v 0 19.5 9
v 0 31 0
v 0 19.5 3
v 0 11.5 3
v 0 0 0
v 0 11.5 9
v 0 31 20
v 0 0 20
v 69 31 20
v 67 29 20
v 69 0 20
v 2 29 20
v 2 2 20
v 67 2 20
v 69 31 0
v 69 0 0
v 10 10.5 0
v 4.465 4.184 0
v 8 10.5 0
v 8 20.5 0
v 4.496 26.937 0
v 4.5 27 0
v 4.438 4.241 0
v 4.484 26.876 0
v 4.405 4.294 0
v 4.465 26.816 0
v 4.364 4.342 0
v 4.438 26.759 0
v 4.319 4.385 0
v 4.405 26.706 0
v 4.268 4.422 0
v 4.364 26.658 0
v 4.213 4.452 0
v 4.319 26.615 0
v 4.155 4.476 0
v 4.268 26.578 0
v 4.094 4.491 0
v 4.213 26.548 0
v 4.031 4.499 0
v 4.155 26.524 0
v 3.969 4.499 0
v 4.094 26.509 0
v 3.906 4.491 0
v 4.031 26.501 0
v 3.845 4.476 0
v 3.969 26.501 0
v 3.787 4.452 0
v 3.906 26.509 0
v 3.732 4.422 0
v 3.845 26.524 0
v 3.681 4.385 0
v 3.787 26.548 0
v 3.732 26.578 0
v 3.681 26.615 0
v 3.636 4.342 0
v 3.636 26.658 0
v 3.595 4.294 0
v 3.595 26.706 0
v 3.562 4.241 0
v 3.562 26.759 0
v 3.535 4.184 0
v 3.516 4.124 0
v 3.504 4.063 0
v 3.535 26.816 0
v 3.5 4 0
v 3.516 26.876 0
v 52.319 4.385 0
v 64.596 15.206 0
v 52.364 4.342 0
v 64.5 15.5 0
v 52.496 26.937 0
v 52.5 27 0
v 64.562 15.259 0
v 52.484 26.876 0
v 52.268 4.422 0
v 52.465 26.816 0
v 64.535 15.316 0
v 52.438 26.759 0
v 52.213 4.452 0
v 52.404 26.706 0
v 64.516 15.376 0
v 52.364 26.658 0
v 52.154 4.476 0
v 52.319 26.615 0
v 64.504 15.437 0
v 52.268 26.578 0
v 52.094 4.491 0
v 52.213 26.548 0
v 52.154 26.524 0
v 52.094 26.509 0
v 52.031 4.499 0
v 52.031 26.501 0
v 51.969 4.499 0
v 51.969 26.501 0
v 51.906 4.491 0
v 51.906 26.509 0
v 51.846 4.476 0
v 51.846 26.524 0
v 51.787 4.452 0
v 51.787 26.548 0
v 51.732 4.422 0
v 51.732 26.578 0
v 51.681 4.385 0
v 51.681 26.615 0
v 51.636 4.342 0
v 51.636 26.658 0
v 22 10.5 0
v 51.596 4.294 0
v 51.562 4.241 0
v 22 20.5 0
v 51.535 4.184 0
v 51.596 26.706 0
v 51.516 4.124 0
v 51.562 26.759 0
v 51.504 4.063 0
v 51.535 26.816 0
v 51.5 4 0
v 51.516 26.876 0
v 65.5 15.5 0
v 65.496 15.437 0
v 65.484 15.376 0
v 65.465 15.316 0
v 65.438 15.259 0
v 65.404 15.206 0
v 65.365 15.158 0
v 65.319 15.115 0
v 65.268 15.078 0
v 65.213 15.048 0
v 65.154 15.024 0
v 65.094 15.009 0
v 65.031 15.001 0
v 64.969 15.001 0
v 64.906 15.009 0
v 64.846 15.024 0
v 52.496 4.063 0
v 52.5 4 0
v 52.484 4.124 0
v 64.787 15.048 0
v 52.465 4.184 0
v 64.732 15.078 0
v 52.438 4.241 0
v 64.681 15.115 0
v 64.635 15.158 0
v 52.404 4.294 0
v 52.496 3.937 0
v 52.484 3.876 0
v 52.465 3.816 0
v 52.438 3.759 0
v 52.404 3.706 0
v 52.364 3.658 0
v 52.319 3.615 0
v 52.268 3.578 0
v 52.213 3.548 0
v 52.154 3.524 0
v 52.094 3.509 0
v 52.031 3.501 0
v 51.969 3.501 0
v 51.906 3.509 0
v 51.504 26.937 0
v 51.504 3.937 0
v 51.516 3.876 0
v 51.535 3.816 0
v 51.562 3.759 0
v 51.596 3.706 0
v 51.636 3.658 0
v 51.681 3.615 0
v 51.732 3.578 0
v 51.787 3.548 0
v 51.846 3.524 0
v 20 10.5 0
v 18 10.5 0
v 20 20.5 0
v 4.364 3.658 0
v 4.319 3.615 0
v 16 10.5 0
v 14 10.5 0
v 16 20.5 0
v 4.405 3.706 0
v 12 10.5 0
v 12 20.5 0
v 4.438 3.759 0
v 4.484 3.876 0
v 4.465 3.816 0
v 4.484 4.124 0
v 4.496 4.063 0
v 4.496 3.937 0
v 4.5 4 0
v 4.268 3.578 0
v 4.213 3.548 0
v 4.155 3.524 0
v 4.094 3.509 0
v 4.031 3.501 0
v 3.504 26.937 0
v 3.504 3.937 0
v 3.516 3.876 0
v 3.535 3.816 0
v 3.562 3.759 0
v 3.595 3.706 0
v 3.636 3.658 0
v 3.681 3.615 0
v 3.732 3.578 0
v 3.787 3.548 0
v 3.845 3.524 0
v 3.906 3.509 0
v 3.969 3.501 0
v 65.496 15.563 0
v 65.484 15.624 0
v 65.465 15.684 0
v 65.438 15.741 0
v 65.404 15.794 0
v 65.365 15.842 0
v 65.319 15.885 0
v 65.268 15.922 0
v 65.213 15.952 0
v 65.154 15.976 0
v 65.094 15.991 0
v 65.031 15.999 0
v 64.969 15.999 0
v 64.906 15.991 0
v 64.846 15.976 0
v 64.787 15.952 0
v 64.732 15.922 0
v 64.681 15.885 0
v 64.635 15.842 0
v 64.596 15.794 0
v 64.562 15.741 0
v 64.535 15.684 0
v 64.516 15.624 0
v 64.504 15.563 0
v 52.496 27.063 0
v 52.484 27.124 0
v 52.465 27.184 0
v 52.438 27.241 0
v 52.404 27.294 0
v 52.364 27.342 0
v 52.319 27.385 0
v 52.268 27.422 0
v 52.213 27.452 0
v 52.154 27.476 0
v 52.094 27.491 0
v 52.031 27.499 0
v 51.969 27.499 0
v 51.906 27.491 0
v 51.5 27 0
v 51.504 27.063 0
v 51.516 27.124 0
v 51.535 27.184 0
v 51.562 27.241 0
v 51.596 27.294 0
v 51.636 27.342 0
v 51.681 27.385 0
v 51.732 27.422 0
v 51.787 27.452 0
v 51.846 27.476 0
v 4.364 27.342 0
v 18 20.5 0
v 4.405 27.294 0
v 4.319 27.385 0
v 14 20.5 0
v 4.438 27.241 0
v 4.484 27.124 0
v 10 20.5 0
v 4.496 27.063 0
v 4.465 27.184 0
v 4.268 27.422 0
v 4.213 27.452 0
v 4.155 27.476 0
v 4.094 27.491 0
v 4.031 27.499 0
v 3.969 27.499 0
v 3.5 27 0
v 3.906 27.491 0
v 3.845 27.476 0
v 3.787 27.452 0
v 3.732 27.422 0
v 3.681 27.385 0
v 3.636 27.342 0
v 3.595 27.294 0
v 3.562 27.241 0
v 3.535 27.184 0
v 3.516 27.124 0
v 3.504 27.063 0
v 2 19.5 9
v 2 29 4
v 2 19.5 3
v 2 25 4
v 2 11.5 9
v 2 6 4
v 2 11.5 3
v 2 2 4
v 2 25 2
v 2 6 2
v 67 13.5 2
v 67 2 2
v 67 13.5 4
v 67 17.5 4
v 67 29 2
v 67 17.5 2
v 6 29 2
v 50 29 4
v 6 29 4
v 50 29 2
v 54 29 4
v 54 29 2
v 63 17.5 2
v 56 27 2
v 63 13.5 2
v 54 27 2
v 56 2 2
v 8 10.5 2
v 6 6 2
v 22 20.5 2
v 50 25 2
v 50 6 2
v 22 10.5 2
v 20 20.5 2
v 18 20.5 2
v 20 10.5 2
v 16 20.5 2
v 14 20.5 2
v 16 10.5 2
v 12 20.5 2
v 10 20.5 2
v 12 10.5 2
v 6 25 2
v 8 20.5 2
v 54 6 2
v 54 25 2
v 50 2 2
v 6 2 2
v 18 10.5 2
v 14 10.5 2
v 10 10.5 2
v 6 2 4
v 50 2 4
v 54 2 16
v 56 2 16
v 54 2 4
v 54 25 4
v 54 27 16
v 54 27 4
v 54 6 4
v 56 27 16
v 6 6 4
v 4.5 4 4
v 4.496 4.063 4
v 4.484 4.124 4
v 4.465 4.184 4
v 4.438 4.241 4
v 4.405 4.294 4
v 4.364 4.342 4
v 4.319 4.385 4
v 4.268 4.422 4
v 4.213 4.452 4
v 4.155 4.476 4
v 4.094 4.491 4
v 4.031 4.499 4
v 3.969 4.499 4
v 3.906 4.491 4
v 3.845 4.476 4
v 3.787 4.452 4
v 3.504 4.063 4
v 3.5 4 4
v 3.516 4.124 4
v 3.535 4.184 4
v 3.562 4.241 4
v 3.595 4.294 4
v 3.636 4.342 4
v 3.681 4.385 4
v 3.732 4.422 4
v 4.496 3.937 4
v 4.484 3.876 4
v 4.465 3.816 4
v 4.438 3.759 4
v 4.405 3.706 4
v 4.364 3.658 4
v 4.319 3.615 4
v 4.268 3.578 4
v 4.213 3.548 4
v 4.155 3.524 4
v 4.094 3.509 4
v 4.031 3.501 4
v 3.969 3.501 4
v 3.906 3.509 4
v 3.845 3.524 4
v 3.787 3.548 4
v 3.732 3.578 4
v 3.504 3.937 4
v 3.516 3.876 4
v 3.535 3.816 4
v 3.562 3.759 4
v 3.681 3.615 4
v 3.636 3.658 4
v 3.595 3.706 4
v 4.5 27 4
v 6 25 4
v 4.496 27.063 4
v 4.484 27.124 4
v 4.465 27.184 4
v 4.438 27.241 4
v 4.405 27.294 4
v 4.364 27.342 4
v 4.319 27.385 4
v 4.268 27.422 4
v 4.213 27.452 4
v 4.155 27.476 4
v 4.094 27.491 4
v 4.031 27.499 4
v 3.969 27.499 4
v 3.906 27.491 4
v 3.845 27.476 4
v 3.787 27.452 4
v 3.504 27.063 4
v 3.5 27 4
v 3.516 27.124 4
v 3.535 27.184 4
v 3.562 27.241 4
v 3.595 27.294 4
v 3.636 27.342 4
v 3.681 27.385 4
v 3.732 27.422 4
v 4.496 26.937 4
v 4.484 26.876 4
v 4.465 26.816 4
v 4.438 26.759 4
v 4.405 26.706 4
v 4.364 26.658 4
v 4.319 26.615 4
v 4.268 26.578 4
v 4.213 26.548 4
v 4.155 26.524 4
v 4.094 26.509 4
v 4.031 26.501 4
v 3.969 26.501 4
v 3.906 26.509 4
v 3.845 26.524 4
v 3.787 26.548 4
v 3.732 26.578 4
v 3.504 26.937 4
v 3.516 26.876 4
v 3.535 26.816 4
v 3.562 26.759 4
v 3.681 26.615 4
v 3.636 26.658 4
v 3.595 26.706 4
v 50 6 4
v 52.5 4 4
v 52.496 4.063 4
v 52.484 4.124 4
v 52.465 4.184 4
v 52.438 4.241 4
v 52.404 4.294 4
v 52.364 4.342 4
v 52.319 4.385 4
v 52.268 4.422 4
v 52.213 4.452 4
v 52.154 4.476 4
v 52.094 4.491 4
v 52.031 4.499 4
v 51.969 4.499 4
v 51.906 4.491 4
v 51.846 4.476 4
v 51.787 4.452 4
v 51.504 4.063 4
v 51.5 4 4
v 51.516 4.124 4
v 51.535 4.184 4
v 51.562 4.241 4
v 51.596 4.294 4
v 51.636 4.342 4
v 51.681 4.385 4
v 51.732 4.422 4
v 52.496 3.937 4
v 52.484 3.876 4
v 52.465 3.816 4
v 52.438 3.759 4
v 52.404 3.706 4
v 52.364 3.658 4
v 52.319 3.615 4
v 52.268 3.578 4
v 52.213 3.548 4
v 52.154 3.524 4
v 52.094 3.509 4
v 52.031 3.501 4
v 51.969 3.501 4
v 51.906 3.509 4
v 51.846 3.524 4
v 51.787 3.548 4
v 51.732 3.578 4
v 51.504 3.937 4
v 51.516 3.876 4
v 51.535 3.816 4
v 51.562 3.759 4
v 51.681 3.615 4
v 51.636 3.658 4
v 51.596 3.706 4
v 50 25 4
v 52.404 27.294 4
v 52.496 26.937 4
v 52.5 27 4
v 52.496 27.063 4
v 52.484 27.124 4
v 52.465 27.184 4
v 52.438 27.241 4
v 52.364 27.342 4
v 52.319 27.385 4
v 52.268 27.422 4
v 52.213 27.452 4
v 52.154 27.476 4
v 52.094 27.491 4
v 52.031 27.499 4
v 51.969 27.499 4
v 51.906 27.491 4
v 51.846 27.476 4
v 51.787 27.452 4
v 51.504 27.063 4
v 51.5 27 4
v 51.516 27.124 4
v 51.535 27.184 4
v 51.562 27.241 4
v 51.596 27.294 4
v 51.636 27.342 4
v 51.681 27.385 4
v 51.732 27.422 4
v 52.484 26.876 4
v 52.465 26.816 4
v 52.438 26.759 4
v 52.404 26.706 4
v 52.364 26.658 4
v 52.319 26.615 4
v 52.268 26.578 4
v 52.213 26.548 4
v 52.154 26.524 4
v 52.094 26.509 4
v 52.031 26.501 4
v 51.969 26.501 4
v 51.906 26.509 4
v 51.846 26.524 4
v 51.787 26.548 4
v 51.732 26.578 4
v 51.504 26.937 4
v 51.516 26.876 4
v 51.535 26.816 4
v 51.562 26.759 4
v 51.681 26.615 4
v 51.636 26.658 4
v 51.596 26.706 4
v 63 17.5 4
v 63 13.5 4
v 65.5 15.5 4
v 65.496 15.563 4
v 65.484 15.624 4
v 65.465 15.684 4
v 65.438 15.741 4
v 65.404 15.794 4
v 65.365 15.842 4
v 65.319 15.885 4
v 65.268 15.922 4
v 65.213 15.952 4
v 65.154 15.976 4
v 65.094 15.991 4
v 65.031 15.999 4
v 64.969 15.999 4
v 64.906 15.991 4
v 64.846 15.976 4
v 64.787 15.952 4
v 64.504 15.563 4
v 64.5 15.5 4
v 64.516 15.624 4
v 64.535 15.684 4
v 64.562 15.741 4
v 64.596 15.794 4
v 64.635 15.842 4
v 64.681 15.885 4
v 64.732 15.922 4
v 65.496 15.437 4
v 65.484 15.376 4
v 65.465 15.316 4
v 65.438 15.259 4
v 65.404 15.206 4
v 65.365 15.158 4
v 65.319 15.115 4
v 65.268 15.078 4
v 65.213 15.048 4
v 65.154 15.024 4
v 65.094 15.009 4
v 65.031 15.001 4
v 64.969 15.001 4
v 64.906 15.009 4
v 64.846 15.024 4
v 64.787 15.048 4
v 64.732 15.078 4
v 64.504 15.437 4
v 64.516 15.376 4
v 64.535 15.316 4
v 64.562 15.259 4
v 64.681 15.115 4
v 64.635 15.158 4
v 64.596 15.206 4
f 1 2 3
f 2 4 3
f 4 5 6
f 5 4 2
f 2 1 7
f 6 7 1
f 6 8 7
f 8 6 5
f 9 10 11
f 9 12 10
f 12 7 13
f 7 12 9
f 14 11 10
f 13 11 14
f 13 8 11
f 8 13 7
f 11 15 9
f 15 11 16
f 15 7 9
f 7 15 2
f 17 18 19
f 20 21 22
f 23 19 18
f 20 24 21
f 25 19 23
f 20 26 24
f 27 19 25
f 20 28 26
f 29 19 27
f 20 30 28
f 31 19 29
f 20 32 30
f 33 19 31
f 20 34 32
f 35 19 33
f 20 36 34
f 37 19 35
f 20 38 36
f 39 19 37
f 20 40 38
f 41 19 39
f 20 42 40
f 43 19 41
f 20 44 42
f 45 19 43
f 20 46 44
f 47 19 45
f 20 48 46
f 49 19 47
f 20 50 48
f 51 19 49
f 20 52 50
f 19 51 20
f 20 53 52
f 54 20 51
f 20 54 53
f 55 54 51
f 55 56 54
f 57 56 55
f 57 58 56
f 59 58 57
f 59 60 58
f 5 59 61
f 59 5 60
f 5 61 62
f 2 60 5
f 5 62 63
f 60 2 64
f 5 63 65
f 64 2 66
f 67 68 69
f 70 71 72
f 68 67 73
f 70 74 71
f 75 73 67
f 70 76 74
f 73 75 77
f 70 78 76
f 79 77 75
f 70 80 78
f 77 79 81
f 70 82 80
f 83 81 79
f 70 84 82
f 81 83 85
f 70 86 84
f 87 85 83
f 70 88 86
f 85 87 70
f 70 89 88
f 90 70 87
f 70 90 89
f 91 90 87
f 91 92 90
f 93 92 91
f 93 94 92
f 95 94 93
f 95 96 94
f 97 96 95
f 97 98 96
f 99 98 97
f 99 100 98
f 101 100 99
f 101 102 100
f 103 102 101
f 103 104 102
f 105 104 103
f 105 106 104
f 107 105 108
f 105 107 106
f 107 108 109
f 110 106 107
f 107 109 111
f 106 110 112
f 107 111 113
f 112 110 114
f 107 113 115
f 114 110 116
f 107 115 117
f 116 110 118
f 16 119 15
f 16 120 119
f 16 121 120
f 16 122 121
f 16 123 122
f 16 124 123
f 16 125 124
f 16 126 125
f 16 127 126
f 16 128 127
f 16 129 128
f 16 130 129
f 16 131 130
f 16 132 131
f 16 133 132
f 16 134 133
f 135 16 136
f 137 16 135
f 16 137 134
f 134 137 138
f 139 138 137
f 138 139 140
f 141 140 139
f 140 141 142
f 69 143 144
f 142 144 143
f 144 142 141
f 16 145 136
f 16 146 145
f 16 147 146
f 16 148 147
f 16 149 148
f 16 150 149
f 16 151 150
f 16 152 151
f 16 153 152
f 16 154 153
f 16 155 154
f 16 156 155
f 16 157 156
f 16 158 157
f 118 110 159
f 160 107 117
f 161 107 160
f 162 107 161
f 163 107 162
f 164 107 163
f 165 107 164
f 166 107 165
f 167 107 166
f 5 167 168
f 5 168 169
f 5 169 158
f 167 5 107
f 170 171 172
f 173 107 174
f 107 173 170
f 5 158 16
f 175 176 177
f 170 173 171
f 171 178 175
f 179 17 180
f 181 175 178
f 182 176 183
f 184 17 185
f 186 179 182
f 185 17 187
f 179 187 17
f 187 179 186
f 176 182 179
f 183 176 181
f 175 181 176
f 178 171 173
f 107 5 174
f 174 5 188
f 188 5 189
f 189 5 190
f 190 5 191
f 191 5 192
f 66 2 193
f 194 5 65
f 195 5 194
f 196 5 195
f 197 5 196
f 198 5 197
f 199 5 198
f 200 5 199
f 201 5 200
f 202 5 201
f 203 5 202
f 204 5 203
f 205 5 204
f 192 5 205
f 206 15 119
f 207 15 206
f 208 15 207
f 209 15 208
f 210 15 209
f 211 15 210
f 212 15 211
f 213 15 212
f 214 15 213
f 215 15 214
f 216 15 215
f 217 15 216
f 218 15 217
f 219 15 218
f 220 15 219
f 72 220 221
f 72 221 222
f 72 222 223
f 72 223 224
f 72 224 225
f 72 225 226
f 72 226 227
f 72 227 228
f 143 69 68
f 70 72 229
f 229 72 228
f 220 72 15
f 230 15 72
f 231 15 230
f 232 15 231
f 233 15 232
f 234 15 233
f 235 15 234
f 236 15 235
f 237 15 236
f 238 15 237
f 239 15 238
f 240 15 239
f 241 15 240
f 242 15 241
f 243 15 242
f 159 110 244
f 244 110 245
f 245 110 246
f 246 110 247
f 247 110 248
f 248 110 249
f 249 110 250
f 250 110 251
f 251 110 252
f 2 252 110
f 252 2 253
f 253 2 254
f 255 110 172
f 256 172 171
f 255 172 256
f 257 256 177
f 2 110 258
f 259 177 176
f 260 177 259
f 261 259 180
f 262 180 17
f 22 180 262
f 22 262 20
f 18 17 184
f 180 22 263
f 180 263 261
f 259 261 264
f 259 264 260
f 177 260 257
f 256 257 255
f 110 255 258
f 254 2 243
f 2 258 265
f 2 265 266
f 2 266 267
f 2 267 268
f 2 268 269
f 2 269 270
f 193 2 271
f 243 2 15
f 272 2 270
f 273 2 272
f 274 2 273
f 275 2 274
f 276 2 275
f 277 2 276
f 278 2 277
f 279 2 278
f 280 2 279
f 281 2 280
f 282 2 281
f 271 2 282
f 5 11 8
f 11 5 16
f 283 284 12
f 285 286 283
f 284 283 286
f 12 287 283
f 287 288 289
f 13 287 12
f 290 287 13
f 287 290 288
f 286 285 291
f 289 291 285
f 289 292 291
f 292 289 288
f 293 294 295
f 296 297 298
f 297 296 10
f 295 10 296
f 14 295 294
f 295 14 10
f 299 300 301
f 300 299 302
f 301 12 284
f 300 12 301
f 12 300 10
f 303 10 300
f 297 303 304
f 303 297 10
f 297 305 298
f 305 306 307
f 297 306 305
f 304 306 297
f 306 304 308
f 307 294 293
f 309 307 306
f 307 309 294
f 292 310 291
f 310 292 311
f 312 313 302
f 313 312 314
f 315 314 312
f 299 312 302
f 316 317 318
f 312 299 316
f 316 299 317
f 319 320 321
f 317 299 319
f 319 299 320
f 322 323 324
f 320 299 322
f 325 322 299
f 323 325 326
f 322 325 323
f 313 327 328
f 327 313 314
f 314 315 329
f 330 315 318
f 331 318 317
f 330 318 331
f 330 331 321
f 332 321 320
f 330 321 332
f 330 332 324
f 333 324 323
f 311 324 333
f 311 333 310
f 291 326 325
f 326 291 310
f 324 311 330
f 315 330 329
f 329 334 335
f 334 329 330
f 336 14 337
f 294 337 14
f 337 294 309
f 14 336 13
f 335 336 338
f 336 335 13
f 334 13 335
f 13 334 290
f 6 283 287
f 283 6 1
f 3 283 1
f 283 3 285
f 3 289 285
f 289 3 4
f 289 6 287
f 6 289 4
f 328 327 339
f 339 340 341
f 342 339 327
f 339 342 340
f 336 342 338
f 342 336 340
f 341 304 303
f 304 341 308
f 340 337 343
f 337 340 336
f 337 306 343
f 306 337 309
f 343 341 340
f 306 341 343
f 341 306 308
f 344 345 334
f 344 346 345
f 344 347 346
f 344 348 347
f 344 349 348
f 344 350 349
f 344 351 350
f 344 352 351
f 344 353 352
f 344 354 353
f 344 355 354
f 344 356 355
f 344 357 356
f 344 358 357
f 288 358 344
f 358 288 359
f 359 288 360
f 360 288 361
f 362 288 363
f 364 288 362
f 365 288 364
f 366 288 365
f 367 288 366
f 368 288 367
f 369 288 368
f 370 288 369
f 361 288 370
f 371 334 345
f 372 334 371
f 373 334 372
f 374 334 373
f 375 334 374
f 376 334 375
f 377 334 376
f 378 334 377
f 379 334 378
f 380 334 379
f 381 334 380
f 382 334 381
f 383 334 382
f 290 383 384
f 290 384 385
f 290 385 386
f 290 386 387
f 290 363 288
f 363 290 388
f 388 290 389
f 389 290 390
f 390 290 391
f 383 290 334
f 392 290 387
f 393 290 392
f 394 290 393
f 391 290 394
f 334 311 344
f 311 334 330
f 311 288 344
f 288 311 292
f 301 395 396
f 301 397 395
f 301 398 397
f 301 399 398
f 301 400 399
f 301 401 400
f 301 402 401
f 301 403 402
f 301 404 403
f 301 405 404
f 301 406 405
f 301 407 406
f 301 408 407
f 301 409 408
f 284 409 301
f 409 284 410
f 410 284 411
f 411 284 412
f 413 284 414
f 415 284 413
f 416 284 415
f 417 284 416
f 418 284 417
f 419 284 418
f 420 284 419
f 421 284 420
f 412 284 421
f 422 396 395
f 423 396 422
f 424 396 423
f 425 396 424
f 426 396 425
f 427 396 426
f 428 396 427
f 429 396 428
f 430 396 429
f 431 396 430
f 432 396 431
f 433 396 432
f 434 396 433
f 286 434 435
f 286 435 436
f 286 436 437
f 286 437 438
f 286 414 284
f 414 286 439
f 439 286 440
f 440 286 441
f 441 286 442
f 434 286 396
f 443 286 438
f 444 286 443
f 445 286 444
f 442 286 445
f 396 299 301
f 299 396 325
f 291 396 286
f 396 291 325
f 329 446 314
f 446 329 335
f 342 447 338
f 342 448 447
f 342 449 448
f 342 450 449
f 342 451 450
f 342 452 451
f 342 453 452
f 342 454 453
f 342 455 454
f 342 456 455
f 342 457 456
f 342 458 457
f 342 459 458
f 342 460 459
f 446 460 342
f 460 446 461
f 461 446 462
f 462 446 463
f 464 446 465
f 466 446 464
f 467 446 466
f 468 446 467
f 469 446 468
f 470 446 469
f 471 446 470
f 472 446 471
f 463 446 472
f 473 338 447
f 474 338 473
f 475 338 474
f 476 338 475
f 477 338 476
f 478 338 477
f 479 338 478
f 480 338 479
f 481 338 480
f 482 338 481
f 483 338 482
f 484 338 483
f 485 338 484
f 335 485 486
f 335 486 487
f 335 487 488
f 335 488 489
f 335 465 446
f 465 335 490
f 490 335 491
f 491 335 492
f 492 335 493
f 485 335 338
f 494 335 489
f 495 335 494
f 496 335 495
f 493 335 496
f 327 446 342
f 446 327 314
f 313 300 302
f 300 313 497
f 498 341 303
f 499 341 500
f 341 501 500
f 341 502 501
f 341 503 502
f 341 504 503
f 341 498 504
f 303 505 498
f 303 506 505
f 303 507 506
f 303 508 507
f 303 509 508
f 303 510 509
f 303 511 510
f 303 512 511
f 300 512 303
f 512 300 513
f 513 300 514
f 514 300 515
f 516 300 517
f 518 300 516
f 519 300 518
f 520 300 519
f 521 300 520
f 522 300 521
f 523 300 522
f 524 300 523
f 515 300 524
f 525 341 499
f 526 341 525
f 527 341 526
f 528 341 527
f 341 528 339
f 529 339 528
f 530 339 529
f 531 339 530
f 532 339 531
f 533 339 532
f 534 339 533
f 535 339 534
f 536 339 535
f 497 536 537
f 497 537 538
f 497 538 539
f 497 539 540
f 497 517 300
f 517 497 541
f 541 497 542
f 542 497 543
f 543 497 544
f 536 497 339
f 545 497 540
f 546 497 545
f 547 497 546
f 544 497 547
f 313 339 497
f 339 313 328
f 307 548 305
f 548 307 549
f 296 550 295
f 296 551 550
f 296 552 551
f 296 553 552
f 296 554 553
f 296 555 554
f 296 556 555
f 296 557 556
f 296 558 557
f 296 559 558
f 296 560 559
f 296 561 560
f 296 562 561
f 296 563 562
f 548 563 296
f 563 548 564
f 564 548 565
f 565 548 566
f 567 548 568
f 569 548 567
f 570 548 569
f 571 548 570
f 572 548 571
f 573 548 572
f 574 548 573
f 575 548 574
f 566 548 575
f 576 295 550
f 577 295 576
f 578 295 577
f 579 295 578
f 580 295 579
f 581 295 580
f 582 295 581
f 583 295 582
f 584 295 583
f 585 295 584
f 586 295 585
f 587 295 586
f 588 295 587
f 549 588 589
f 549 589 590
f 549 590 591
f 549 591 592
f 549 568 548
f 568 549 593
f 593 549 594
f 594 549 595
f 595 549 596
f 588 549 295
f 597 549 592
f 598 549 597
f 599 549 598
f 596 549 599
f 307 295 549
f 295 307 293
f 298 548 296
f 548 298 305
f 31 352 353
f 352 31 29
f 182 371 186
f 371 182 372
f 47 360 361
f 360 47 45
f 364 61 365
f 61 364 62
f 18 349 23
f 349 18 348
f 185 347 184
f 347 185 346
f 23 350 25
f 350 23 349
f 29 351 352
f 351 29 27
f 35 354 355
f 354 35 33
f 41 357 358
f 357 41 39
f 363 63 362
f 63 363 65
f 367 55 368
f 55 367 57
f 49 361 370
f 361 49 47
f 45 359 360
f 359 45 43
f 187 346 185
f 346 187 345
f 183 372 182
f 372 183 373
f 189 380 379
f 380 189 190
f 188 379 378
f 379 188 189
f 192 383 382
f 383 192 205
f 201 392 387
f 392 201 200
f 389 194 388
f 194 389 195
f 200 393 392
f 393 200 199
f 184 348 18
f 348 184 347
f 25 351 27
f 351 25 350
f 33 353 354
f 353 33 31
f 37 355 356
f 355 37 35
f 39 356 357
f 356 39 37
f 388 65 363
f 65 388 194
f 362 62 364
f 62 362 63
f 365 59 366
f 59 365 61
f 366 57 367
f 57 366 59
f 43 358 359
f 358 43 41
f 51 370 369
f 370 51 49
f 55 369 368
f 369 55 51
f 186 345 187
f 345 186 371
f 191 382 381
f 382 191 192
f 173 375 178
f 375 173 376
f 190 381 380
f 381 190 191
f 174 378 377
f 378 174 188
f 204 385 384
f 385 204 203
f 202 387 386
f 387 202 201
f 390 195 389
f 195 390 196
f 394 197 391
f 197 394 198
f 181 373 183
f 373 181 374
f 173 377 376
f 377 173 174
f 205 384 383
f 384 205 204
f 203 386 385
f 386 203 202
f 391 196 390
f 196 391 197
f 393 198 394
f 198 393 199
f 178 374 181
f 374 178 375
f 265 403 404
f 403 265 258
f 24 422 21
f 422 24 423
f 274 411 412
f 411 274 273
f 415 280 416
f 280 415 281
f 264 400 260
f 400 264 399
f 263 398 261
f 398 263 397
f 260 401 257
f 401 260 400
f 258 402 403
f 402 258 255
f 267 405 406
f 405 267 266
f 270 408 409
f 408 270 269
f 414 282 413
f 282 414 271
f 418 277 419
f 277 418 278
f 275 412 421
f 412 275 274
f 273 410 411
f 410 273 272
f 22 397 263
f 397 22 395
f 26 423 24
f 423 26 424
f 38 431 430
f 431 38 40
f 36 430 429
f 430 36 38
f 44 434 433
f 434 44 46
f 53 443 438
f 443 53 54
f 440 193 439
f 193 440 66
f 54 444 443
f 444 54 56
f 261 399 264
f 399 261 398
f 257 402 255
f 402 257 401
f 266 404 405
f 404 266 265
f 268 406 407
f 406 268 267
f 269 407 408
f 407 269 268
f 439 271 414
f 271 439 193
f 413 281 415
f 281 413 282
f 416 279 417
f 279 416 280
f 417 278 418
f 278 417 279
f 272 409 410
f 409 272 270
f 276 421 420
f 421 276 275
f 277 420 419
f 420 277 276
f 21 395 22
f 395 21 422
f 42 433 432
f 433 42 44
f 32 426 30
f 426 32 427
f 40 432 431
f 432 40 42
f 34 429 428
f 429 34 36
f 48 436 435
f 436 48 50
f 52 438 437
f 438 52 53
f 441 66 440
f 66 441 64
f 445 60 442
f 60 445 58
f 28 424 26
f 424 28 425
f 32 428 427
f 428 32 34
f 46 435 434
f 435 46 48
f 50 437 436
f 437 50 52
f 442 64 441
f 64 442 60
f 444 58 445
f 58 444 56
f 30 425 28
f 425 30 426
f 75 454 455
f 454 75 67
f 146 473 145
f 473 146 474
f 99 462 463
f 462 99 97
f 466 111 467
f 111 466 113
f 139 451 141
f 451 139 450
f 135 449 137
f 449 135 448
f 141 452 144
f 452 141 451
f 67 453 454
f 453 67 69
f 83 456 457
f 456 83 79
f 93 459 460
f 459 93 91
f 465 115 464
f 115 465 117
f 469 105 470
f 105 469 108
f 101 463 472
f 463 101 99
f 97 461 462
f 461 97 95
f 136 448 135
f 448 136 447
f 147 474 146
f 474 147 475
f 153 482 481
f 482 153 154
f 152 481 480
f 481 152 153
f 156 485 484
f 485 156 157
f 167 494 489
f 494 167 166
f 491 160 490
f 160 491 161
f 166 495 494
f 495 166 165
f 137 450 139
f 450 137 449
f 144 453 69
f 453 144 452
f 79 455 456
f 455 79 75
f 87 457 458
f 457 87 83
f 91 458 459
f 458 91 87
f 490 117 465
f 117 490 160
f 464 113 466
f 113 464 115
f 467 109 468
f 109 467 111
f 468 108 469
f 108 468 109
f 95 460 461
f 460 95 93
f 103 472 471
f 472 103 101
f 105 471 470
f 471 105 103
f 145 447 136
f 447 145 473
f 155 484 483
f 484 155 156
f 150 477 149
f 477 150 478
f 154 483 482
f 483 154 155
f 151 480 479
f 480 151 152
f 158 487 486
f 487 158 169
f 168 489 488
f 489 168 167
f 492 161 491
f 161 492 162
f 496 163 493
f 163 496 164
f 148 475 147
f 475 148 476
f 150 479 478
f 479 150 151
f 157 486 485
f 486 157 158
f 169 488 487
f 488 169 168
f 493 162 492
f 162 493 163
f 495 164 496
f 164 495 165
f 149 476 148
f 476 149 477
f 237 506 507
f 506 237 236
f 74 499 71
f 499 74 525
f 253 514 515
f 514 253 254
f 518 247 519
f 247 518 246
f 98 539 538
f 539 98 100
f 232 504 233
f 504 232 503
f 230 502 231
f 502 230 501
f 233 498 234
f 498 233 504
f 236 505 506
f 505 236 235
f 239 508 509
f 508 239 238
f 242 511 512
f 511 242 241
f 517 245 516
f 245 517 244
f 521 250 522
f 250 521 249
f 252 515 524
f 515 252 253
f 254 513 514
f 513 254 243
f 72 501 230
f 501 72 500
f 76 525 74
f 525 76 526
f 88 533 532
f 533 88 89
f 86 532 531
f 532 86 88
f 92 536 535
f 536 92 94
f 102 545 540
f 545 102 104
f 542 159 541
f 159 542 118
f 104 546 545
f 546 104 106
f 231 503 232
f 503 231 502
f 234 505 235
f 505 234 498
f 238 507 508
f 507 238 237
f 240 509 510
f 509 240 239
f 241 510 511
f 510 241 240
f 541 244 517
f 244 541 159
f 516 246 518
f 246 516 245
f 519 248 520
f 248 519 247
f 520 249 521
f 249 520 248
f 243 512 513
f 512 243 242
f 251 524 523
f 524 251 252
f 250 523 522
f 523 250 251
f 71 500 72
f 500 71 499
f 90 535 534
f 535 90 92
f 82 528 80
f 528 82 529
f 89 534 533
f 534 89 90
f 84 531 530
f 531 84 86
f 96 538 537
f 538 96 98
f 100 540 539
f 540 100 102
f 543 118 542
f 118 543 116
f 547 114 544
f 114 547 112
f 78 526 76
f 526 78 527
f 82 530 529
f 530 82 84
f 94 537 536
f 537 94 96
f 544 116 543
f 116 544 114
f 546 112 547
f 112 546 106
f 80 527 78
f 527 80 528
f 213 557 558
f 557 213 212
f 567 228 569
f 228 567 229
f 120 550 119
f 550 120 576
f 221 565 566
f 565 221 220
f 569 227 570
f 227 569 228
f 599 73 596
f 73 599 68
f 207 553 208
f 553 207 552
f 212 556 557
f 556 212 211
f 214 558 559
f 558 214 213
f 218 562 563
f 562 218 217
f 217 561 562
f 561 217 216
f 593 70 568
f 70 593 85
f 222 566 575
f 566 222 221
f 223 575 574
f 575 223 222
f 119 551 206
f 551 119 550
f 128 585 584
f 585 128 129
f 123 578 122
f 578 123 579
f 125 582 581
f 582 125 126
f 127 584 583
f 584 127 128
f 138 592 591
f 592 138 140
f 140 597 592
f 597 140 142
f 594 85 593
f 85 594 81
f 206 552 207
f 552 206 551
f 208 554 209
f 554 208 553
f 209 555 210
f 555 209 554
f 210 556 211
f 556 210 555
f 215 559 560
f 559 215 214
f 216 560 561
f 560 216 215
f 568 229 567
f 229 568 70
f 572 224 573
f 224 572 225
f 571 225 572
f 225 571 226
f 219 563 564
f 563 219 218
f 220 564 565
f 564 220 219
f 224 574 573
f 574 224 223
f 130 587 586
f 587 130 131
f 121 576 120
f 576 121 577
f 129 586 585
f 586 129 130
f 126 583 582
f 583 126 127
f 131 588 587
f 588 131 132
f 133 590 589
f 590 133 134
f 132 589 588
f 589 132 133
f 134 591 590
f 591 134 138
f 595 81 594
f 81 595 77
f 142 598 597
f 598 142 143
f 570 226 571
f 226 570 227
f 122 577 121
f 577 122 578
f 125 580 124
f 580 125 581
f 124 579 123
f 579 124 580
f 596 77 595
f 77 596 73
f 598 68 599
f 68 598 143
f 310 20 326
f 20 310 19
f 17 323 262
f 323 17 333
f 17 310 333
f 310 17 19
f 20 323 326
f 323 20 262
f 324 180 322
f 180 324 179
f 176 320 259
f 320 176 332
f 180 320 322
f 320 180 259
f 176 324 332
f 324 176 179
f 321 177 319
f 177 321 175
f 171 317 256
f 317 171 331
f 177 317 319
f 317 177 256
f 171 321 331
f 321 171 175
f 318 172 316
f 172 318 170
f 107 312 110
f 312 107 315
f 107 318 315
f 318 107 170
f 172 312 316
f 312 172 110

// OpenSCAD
$fn=50;

// ESP8266   49mm x 26mm x 14mm

difference() {
	union() {
		difference(){
			//Korpus
			cube([69,31,20]);
			translate([2,2,2]) cube([65,27,18]);
			translate([0,11.5,3]) cube([2,8,6]);
		}

		//Trenner ESP / BME
		translate([54,0,0]) cube([2,27,16]);

		//Platinen Abstandhalter
		translate([2,2,2]) cube([4,4,2]);
		translate([2,25,2]) cube([4,4,2]);
		translate([50,2,2]) cube([4,4,2]);
		translate([50,25,2]) cube([4,4,2]);
		translate([63,13.5,2]) cube([4,4,2]);
	}

	//Schraubenlöcher
	translate([4,4,0]) cylinder(4,1/2,1/2);
	translate([4,27,0]) cylinder(4,1/2,1/2);
	translate([52,4,0]) cylinder(4,1/2,1/2);
	translate([52,27,0]) cylinder(4,1/2,1/2);
	translate([65,15.5,0]) cylinder(4,1/2,1/2);

	//Lüftung ESP8266
	translate([8,10.5,0]) cube([2,10,2]);
	translate([12,10.5,0]) cube([2,10,2]);
	translate([16,10.5,0]) cube([2,10,2]);
	translate([20,10.5,0]) cube([2,10,2]);
}
/*
//Halterung
difference() {
	union() {
		translate([22.5,-10,0]) cube([20,10,2]);
		translate([22.5,37,0]) cube([20,10,2]);
	}
	translate([28,-5,0]) rotate(90,v=[0,0,1]) cylinder(2,4/2,4/2);
	translate([37,-5,0]) rotate(90,v=[0,0,1]) cylinder(2,4/2,4/2);
	translate([28,42,0]) rotate(90,v=[0,0,1]) cylinder(2,4/2,4/2);
	translate([37,42,0]) rotate(90,v=[0,0,1]) cylinder(2,4/2,4/2);
}
*/
